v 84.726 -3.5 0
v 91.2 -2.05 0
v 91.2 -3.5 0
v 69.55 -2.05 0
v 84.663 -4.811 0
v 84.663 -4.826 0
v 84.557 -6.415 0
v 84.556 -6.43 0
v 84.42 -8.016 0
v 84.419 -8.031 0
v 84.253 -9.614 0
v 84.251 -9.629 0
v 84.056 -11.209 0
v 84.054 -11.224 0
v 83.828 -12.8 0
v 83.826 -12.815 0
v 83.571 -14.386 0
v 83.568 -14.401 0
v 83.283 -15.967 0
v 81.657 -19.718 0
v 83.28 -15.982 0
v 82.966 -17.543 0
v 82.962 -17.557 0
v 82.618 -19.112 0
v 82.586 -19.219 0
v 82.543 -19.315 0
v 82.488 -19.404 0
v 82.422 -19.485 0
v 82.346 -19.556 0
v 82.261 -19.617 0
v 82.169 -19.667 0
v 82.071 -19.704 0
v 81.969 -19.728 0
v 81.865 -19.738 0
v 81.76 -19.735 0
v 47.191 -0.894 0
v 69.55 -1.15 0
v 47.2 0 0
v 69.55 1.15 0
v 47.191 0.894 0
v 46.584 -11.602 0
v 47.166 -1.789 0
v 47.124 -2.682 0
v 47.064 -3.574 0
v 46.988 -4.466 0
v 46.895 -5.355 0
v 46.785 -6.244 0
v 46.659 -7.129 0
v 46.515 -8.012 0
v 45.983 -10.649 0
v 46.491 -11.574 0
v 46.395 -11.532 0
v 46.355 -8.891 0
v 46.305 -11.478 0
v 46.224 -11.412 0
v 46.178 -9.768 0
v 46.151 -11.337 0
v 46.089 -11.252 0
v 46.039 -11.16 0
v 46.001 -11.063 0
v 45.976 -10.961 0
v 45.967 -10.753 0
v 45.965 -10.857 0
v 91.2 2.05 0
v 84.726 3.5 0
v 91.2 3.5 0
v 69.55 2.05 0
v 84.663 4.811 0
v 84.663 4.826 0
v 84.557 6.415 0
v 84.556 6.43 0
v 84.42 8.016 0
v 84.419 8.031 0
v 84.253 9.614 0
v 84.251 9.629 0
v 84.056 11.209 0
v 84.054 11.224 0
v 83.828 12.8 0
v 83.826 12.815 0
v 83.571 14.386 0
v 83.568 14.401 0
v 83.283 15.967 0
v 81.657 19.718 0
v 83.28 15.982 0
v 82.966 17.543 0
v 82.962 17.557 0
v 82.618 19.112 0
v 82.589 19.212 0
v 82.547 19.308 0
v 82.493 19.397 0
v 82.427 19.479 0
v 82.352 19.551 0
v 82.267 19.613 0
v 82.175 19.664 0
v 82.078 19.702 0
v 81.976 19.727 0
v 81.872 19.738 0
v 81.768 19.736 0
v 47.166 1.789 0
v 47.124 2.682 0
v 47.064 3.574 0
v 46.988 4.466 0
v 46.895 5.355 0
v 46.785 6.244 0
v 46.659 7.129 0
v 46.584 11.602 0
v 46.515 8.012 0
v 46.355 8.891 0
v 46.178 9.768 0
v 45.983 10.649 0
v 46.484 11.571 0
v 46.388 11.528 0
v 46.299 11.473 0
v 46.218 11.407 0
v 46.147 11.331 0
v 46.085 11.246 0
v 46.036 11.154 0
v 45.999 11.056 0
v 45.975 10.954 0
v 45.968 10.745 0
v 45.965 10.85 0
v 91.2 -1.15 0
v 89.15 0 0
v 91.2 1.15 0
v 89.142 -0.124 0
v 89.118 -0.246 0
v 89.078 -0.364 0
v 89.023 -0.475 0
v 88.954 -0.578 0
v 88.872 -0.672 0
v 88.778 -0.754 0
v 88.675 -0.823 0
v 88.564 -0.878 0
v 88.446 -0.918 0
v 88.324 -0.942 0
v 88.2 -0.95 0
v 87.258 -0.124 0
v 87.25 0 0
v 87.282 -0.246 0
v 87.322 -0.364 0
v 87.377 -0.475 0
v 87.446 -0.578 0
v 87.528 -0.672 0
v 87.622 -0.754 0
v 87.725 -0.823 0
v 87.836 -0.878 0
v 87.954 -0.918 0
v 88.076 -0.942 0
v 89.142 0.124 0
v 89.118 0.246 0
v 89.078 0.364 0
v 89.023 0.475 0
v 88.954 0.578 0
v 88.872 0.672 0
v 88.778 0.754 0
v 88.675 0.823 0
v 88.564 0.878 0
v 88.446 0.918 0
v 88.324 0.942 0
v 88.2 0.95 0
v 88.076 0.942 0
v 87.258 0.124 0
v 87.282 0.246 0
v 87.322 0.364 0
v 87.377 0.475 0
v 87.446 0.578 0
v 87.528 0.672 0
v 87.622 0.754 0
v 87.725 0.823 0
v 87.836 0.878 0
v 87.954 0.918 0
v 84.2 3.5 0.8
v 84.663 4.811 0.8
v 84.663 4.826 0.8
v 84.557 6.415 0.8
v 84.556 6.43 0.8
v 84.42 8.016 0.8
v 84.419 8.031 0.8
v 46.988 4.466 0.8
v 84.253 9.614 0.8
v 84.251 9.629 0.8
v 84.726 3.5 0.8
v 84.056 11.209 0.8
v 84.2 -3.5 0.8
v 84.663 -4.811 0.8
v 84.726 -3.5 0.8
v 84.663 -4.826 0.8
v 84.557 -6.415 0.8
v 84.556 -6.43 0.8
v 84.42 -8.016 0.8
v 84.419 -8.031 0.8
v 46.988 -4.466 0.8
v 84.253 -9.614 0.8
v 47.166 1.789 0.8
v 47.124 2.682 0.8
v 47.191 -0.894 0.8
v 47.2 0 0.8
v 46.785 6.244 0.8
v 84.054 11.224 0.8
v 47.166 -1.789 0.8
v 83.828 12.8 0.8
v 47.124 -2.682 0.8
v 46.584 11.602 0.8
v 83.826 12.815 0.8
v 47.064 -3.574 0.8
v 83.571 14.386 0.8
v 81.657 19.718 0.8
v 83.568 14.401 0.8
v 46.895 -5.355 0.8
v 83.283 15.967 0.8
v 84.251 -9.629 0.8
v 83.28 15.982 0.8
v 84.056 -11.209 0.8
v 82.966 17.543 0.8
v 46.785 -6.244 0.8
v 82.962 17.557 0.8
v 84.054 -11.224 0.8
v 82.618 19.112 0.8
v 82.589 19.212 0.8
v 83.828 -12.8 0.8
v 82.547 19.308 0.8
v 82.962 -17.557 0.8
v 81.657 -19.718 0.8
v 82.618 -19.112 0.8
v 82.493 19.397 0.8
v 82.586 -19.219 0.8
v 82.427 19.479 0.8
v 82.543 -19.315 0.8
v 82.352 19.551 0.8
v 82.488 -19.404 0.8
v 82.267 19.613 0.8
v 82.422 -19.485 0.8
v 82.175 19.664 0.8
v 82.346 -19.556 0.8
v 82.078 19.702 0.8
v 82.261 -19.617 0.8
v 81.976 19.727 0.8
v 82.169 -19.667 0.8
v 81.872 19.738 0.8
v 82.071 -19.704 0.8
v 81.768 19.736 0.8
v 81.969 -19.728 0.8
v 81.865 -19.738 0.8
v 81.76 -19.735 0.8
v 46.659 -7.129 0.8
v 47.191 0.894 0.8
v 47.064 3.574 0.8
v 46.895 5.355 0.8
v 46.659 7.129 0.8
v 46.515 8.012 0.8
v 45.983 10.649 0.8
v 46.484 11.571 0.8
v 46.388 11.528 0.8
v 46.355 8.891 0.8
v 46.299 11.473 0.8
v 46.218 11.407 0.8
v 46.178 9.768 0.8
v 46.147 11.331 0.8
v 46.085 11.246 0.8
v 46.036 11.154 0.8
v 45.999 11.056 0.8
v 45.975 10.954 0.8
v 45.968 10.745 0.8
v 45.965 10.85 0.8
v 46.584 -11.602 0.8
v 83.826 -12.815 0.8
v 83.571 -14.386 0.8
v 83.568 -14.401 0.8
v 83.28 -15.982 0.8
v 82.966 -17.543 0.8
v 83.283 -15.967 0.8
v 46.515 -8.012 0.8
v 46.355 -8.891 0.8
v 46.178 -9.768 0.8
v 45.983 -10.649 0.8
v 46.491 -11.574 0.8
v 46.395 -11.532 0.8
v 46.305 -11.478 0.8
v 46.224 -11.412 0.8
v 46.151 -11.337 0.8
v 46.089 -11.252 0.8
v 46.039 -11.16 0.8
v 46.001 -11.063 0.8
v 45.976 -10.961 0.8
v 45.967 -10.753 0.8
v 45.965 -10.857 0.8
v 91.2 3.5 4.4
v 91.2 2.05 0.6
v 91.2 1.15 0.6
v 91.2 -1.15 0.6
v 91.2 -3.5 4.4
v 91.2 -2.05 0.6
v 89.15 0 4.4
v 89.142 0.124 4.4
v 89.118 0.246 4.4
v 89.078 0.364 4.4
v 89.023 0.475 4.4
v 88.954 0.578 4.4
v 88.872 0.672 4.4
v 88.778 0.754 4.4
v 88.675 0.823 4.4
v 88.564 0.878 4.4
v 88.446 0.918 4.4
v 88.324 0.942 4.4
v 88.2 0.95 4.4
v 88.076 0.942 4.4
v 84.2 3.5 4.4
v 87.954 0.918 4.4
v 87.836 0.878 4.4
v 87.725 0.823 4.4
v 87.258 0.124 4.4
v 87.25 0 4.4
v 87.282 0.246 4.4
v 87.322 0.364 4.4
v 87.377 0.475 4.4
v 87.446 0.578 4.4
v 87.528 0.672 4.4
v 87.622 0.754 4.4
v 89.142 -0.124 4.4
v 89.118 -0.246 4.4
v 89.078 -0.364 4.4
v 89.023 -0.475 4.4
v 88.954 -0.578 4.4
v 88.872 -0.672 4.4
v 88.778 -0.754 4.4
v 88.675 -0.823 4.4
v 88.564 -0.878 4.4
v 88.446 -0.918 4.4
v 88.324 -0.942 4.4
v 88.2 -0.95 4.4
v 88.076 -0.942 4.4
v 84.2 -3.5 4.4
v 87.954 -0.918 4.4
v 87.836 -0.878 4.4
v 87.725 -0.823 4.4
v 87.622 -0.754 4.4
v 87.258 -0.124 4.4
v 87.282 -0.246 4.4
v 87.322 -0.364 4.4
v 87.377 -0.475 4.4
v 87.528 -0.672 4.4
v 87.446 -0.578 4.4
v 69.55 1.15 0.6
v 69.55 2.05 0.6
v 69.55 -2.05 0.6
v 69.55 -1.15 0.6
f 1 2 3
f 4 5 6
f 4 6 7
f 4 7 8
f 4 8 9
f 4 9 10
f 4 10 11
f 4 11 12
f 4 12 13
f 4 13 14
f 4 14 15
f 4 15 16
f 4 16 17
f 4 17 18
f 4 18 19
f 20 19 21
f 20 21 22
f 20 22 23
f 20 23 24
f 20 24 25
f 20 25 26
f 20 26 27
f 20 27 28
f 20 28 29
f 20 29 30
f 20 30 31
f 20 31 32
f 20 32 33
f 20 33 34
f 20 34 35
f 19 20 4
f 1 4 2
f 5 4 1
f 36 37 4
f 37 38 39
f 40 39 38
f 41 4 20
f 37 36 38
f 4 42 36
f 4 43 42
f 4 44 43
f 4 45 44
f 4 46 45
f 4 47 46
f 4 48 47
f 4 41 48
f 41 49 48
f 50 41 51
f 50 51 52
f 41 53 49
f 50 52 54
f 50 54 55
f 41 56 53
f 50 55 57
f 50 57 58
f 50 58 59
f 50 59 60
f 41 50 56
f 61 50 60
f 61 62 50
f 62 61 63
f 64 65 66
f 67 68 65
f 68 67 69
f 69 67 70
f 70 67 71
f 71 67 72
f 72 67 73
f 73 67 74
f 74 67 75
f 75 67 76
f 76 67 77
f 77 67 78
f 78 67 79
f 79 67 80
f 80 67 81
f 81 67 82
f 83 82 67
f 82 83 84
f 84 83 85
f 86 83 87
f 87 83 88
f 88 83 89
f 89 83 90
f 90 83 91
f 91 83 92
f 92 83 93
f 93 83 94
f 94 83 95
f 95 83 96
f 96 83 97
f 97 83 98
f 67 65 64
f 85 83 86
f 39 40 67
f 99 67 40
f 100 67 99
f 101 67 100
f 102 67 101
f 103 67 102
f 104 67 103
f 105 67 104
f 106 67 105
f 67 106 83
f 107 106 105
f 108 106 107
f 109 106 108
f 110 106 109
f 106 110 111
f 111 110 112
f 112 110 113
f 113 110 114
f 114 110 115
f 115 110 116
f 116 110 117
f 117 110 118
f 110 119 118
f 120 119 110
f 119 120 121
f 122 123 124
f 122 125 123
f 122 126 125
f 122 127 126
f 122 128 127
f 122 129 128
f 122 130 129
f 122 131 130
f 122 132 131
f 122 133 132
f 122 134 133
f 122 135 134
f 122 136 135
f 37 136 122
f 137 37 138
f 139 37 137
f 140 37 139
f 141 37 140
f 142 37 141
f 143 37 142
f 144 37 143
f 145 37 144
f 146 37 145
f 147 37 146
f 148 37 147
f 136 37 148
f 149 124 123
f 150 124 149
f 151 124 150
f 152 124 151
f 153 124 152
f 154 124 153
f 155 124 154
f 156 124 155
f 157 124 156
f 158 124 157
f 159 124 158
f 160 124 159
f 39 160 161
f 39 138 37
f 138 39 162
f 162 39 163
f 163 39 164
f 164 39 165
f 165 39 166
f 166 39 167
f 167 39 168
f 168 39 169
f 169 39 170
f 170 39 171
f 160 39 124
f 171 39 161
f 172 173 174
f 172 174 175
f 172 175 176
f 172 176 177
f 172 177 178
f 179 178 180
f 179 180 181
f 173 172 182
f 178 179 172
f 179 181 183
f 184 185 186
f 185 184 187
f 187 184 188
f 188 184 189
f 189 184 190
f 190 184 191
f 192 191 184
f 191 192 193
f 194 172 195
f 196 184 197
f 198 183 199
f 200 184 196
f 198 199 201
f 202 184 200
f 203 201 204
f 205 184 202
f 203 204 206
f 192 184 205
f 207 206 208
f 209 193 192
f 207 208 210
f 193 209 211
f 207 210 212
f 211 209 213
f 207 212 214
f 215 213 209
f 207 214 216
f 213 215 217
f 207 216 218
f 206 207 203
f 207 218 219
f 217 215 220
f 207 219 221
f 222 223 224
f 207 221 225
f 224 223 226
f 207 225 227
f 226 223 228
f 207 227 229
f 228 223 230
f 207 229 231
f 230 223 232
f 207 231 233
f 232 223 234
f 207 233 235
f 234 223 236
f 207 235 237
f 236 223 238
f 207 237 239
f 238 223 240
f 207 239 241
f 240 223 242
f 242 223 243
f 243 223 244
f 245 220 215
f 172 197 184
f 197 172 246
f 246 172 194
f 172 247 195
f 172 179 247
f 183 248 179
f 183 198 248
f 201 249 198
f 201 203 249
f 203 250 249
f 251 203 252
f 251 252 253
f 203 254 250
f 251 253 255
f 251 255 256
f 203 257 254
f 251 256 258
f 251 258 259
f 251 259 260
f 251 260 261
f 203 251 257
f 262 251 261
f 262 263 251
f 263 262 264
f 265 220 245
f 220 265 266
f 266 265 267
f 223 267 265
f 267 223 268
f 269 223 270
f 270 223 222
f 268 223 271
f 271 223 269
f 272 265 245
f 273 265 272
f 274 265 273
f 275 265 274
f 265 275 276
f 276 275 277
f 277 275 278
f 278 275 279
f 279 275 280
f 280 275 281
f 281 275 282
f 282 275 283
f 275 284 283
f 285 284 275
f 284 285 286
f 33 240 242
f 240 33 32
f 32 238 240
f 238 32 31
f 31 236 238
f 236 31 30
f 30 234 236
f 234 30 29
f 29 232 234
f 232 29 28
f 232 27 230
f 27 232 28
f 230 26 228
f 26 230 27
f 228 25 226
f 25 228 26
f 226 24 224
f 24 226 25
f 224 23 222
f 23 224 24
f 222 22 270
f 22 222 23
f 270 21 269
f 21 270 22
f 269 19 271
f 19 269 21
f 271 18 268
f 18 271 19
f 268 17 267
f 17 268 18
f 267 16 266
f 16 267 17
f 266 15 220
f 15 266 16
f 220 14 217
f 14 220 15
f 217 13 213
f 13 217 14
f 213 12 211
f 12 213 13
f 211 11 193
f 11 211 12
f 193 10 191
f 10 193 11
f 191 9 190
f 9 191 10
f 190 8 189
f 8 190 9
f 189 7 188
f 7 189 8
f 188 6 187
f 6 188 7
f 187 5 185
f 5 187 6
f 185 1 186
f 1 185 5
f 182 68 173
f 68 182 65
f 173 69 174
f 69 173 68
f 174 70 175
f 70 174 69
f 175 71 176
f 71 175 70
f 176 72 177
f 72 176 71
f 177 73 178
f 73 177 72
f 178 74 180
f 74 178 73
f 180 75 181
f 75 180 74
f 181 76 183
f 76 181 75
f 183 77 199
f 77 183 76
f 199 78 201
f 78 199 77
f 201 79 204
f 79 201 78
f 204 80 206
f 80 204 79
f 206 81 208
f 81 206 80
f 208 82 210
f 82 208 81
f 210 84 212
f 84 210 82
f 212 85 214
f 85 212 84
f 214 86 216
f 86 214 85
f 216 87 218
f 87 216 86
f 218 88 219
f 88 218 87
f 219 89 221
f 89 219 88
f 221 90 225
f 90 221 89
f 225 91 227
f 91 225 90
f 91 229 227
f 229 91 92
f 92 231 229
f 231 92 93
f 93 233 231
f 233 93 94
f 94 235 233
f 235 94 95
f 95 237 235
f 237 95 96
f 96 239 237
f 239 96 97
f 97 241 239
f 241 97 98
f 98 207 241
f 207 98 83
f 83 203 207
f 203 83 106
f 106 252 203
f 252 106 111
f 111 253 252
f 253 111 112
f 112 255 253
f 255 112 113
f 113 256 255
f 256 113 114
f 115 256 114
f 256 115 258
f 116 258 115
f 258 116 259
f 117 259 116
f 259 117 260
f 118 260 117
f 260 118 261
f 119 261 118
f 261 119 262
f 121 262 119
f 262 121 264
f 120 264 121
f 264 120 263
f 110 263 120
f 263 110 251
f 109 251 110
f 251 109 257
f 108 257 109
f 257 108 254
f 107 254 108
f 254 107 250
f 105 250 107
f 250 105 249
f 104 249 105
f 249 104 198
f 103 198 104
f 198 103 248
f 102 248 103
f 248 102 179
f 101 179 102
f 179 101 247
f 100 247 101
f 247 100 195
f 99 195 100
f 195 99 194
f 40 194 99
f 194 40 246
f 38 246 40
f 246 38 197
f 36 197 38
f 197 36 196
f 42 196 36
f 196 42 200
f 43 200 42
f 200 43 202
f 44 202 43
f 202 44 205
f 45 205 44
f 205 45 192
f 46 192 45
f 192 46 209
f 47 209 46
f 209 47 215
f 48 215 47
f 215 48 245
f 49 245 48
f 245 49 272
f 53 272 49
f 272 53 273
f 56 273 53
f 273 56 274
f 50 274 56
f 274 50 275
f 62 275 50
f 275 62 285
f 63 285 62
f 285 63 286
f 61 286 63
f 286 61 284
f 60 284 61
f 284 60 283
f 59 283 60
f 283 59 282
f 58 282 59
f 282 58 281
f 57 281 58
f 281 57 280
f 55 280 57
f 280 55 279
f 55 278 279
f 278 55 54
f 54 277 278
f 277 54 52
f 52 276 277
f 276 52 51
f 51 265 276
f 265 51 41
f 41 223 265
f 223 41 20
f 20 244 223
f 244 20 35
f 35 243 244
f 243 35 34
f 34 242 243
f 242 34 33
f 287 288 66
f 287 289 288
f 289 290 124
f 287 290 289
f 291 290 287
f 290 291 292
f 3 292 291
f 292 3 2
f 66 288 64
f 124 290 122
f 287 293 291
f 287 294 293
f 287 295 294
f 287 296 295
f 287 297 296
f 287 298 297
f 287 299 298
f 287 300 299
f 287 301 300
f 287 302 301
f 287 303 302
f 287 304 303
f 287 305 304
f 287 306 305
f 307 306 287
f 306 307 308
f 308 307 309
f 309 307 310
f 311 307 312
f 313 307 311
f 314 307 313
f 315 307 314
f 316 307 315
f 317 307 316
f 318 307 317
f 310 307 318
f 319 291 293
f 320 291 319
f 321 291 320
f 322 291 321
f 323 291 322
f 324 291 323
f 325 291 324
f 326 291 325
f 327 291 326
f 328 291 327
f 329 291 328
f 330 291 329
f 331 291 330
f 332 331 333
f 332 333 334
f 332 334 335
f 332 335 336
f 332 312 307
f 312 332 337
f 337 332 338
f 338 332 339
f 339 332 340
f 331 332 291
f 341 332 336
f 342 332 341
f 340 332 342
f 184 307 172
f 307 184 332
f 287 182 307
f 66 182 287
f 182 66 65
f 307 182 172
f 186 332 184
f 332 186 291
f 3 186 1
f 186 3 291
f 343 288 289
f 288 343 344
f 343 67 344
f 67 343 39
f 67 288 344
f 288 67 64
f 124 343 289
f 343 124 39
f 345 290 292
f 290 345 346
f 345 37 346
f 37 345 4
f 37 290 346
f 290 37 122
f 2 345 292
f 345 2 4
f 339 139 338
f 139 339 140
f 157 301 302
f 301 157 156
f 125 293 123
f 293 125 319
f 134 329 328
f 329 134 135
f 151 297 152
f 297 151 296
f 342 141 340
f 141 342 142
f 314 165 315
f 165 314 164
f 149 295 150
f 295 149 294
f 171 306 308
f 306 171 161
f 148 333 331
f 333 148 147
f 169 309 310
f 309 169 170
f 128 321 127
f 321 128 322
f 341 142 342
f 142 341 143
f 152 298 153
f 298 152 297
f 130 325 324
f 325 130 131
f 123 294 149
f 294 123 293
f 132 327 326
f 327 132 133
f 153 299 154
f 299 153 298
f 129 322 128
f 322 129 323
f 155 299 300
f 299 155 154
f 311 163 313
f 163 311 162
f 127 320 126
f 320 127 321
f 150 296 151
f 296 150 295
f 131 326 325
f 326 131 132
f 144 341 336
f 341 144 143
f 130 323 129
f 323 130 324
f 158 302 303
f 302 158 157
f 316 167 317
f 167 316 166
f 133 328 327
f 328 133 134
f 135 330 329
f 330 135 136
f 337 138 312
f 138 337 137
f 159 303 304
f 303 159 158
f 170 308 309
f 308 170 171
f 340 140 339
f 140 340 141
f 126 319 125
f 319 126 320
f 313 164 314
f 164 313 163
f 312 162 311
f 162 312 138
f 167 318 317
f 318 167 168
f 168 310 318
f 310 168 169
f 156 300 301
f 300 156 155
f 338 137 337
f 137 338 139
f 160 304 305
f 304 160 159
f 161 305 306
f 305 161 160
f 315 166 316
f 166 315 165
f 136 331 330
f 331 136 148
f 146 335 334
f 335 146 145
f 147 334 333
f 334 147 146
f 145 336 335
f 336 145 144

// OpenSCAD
// file: parameters.scad
// =============================================================================
// Gen-BY — nightly 2026-10-11 (physics_scorer, honest magpylib watts)
// Stator-only upgrade for an existing Gen-BU: the R66 rotors and Ø158 steel are reused unchanged, and a new 12-bobbin stator with thinner 7.2 mm copper (gap 10.70 → 9.80 mm) and longer r48–84 bobbins (more copper outside the magnet ring) replaces the old one, together with a shorter gap sleeve and wider-spaced frame rods. It is the modular swap path: no new magnets or steel.
// Clocking 0 deg (magnets N facing S) + D-flat keyed bore + index notch + flip-symmetric hole map.
// Windable 2-piece bobbin; turns = physics_scorer turns_fit; copper only between flanges.
// Steel back-iron: 2× Ø158 × 4.76 mm (3/16") mild-steel discs (steel_backiron_disc.dxf); magnets sit ON the steel
// (through-pockets) -> score with --back-iron. Night 2026-10-11.
// =============================================================================
topology            = "dual_rotor";

// --- Wire / winding (physics_scorer winding-fit) -------------------------------
wire_awg            = 26;
wire_od             = 0.45;     // insulated OD mm (bare 0.405)
fill_realistic      = 0.65;     // insulated-wire area / window (DENSE layered wind with a jig; scorer cap 0.65)
turns               = 410;       // = physics_scorer turns_fit (do NOT raise)
coil_former_type    = "bobbin";
coil_core_inset     = 13.95;     // radial copper build: hub = copper boundary inset by this
wind_build_axial    = 0.0;      // nothing proud of the flanges
wind_build_radial   = 0.0;

// --- Bobbin (base + lid) ---------------------------------------------------------
coil_id_r           = 48.00;    // copper boundary sector
coil_od_r           = 84.00;
span_deg            = 26.06;    // = pitch - 2*asin((wall+0.85)/coil_id_r) -> >=1.2 mm stator web
former_web          = 7.20;     // copper height between flanges (TALL copper: steel keeps Bz up)
flange_t            = 0.80;     // >= 0.8 mm FDM wall rule (tall winds push on the flanges)
wall                = 0.80;     // flange lip beyond copper
former_bare_h       = former_web + 2 * flange_t;
coil_envelope_h     = former_bare_h + 2 * wind_build_axial;
tab_w               = 7.0;
tab_len             = 7.0;
tab_h               = former_bare_h / 2;
pin_d               = 1.9;      // 1.75 mm filament locating pin
coil_mount_r        = coil_od_r + 0.2 + 4.0;
lead_y              = 1.6;
lead_slot_w         = 0.9;
lead_groove_d       = 0.6;

// --- Gap -------------------------------------------------------------------------
run_clear           = 0.50;     // rotor face -> flange
gap_spacer_h        = run_clear + wind_build_axial;
m2m                 = coil_envelope_h + 2 * run_clear;   // rotor face to rotor face (= gap_sleeve length)

// --- Stator ----------------------------------------------------------------------
coil_stations       = 12;
bay_clear           = 0.25;
stator_thick        = former_bare_h;                        // bobbins flush both faces
stator_od           = 186.0;
shaft_clear_stator  = 14.0;     // stator is static; gap sleeve OD 12 spins inside

// --- Rotor(s) --------------------------------------------------------------------
magnet_Br           = 1.43;     // N52
magnet_d_large      = 20.0;
magnet_h_large      = 5.0;      // one O20x5 per pocket
magnet_h_small      = 5.0;      // unused: no O5 pockets in this kit
halbach_magnetisation = "none";  // NO O5 assist magnets in this kit (scan: they lower the 4-pole score)
rotor_b_same_axis   = true;     // same-index magnets share one axis: N faces S across the gap
large_pocket_d      = 20.3;
small_pocket_d      = 5.3;
pocket_h            = 5.00;     // THROUGH the carrier: magnet back face sits on the steel disc (FLUSH seat: carrier = magnet height, magnet face level with the rotor face)
large_n             = 8;
R_large             = 66.0;
small_r_list        = [];       // no O5 pockets
carrier_od          = 158.0;
carrier_thick       = pocket_h;
hub_h               = 12.0;     // > steel_t + insert: radial set-screw clears the steel
hub_od              = 24.0;     // slim hub so the M4 brace rods fit at R~18 inside the coil ring
hub_insert_d        = 4.0;      // M3 heat-set insert, radial, bears on the D-flat
rotor_b_offset_deg  = 0.0;      // CLOCKING: magnets directly opposite
shaft_key           = "dflat";
dflat_depth         = 0.5;      // 8 mm shaft with 0.5 mm flat (7.5 across flat)
index_notch_d       = 3.0;

// --- Steel back-iron (buyable laser-cut) -------------------------------------------
steel_t             = 4.76;      // mild steel thickness (image method ignores it; sized from steel_flux.py so the return path stays well below saturation)
steel_center_hole   = 26.0;     // slips over the rotor hub (OD 24)
steel_od            = carrier_od;   // steel disc OD = rotor carrier OD

// --- Modular MAX interface ----------------------------------------------------------
shaft_bore          = 8.35;
dflat_x             = 4.0 - dflat_depth + (shaft_bore - 8.0) / 2;
bearing_d           = 21.85;
bearing_h           = 7.2;
m3_clear            = 3.5;
bolt_r_inner        = 30.0;     // M3 steel-disc clamp bolts (inside the magnet ring)
bolt_n_inner        = 4;
bolt_inner_angles   = [0, 90, 180, 270];
bolt_r_outer        = 44.0;     // second M3 steel-disc clamp ring
bolt_outer_angles   = [67.5, 112.5, 247.5, 292.5];
flange_bolt_r       = 88.0;     // frame rods: OUTSIDE the rotor OD (rotors spin inside them)
flange_bolt_n       = 4;
flange_bolt_offset  = 45.00;    // between coil stations -> never cuts a lead groove/tab
brace_r             = 18.0;
brace_d             = 4.3;      // temporary M4 jack rods (assembly only)
brace_n             = 4;
brace_angles        = [45, 135, 225, 315];          // flip-symmetric

spacer_pad_od       = 14.0;
spacer_pad_id       = m3_clear;
endbell_od          = 186.0;
endbell_thick       = 8.0;
endbell_shaft_clear = 10.0;
collar_h            = 10.0;
standoff_od         = 9.0;
frame_standoff_h    = run_clear + carrier_thick + hub_h + collar_h + 2.0;
sleeve_od           = 12.0;
plate_max_mm        = 410;

$fn = 64;
// main file
// Gen-BY — bobbin LID (top flange + locating tab). Print x12, flange face DOWN on the bed.
// CA-glue onto the hub top BEFORE winding. Tab = lap joint into the stator tab pocket; 1.75 mm filament
// pin through pin hole + stator ledge, trim flush. Lead slots carry both leads flush.
include <parameters.scad>;
$fn = 48;
module sector_2d(r_in, r_out, ang) {
    polygon([
        for (a = [-ang/2 : ang/24 : ang/2]) [r_in*cos(a), r_in*sin(a)],
        for (a = [ang/2 : -ang/24 : -ang/2]) [r_out*cos(a), r_out*sin(a)]
    ]);
}
module footprint_2d() { offset(r=wall) sector_2d(coil_id_r, coil_od_r, span_deg); }
module hub_2d()       { offset(delta=-coil_core_inset) sector_2d(coil_id_r, coil_od_r, span_deg); }

difference() {
    union() {
        linear_extrude(flange_t) footprint_2d();
        translate([coil_od_r + 0.2, -tab_w/2, 0]) cube([tab_len, tab_w, tab_h]);
    }
    translate([coil_mount_r, 0, -0.1]) cylinder(d=pin_d, h=tab_h + 1);
    for (y = [lead_y, -lead_y])
        translate([coil_od_r - coil_core_inset - 0.5, y - lead_slot_w/2, -0.1])
            cube([coil_core_inset + tab_len + 2, lead_slot_w, lead_groove_d + 0.1]);
}
